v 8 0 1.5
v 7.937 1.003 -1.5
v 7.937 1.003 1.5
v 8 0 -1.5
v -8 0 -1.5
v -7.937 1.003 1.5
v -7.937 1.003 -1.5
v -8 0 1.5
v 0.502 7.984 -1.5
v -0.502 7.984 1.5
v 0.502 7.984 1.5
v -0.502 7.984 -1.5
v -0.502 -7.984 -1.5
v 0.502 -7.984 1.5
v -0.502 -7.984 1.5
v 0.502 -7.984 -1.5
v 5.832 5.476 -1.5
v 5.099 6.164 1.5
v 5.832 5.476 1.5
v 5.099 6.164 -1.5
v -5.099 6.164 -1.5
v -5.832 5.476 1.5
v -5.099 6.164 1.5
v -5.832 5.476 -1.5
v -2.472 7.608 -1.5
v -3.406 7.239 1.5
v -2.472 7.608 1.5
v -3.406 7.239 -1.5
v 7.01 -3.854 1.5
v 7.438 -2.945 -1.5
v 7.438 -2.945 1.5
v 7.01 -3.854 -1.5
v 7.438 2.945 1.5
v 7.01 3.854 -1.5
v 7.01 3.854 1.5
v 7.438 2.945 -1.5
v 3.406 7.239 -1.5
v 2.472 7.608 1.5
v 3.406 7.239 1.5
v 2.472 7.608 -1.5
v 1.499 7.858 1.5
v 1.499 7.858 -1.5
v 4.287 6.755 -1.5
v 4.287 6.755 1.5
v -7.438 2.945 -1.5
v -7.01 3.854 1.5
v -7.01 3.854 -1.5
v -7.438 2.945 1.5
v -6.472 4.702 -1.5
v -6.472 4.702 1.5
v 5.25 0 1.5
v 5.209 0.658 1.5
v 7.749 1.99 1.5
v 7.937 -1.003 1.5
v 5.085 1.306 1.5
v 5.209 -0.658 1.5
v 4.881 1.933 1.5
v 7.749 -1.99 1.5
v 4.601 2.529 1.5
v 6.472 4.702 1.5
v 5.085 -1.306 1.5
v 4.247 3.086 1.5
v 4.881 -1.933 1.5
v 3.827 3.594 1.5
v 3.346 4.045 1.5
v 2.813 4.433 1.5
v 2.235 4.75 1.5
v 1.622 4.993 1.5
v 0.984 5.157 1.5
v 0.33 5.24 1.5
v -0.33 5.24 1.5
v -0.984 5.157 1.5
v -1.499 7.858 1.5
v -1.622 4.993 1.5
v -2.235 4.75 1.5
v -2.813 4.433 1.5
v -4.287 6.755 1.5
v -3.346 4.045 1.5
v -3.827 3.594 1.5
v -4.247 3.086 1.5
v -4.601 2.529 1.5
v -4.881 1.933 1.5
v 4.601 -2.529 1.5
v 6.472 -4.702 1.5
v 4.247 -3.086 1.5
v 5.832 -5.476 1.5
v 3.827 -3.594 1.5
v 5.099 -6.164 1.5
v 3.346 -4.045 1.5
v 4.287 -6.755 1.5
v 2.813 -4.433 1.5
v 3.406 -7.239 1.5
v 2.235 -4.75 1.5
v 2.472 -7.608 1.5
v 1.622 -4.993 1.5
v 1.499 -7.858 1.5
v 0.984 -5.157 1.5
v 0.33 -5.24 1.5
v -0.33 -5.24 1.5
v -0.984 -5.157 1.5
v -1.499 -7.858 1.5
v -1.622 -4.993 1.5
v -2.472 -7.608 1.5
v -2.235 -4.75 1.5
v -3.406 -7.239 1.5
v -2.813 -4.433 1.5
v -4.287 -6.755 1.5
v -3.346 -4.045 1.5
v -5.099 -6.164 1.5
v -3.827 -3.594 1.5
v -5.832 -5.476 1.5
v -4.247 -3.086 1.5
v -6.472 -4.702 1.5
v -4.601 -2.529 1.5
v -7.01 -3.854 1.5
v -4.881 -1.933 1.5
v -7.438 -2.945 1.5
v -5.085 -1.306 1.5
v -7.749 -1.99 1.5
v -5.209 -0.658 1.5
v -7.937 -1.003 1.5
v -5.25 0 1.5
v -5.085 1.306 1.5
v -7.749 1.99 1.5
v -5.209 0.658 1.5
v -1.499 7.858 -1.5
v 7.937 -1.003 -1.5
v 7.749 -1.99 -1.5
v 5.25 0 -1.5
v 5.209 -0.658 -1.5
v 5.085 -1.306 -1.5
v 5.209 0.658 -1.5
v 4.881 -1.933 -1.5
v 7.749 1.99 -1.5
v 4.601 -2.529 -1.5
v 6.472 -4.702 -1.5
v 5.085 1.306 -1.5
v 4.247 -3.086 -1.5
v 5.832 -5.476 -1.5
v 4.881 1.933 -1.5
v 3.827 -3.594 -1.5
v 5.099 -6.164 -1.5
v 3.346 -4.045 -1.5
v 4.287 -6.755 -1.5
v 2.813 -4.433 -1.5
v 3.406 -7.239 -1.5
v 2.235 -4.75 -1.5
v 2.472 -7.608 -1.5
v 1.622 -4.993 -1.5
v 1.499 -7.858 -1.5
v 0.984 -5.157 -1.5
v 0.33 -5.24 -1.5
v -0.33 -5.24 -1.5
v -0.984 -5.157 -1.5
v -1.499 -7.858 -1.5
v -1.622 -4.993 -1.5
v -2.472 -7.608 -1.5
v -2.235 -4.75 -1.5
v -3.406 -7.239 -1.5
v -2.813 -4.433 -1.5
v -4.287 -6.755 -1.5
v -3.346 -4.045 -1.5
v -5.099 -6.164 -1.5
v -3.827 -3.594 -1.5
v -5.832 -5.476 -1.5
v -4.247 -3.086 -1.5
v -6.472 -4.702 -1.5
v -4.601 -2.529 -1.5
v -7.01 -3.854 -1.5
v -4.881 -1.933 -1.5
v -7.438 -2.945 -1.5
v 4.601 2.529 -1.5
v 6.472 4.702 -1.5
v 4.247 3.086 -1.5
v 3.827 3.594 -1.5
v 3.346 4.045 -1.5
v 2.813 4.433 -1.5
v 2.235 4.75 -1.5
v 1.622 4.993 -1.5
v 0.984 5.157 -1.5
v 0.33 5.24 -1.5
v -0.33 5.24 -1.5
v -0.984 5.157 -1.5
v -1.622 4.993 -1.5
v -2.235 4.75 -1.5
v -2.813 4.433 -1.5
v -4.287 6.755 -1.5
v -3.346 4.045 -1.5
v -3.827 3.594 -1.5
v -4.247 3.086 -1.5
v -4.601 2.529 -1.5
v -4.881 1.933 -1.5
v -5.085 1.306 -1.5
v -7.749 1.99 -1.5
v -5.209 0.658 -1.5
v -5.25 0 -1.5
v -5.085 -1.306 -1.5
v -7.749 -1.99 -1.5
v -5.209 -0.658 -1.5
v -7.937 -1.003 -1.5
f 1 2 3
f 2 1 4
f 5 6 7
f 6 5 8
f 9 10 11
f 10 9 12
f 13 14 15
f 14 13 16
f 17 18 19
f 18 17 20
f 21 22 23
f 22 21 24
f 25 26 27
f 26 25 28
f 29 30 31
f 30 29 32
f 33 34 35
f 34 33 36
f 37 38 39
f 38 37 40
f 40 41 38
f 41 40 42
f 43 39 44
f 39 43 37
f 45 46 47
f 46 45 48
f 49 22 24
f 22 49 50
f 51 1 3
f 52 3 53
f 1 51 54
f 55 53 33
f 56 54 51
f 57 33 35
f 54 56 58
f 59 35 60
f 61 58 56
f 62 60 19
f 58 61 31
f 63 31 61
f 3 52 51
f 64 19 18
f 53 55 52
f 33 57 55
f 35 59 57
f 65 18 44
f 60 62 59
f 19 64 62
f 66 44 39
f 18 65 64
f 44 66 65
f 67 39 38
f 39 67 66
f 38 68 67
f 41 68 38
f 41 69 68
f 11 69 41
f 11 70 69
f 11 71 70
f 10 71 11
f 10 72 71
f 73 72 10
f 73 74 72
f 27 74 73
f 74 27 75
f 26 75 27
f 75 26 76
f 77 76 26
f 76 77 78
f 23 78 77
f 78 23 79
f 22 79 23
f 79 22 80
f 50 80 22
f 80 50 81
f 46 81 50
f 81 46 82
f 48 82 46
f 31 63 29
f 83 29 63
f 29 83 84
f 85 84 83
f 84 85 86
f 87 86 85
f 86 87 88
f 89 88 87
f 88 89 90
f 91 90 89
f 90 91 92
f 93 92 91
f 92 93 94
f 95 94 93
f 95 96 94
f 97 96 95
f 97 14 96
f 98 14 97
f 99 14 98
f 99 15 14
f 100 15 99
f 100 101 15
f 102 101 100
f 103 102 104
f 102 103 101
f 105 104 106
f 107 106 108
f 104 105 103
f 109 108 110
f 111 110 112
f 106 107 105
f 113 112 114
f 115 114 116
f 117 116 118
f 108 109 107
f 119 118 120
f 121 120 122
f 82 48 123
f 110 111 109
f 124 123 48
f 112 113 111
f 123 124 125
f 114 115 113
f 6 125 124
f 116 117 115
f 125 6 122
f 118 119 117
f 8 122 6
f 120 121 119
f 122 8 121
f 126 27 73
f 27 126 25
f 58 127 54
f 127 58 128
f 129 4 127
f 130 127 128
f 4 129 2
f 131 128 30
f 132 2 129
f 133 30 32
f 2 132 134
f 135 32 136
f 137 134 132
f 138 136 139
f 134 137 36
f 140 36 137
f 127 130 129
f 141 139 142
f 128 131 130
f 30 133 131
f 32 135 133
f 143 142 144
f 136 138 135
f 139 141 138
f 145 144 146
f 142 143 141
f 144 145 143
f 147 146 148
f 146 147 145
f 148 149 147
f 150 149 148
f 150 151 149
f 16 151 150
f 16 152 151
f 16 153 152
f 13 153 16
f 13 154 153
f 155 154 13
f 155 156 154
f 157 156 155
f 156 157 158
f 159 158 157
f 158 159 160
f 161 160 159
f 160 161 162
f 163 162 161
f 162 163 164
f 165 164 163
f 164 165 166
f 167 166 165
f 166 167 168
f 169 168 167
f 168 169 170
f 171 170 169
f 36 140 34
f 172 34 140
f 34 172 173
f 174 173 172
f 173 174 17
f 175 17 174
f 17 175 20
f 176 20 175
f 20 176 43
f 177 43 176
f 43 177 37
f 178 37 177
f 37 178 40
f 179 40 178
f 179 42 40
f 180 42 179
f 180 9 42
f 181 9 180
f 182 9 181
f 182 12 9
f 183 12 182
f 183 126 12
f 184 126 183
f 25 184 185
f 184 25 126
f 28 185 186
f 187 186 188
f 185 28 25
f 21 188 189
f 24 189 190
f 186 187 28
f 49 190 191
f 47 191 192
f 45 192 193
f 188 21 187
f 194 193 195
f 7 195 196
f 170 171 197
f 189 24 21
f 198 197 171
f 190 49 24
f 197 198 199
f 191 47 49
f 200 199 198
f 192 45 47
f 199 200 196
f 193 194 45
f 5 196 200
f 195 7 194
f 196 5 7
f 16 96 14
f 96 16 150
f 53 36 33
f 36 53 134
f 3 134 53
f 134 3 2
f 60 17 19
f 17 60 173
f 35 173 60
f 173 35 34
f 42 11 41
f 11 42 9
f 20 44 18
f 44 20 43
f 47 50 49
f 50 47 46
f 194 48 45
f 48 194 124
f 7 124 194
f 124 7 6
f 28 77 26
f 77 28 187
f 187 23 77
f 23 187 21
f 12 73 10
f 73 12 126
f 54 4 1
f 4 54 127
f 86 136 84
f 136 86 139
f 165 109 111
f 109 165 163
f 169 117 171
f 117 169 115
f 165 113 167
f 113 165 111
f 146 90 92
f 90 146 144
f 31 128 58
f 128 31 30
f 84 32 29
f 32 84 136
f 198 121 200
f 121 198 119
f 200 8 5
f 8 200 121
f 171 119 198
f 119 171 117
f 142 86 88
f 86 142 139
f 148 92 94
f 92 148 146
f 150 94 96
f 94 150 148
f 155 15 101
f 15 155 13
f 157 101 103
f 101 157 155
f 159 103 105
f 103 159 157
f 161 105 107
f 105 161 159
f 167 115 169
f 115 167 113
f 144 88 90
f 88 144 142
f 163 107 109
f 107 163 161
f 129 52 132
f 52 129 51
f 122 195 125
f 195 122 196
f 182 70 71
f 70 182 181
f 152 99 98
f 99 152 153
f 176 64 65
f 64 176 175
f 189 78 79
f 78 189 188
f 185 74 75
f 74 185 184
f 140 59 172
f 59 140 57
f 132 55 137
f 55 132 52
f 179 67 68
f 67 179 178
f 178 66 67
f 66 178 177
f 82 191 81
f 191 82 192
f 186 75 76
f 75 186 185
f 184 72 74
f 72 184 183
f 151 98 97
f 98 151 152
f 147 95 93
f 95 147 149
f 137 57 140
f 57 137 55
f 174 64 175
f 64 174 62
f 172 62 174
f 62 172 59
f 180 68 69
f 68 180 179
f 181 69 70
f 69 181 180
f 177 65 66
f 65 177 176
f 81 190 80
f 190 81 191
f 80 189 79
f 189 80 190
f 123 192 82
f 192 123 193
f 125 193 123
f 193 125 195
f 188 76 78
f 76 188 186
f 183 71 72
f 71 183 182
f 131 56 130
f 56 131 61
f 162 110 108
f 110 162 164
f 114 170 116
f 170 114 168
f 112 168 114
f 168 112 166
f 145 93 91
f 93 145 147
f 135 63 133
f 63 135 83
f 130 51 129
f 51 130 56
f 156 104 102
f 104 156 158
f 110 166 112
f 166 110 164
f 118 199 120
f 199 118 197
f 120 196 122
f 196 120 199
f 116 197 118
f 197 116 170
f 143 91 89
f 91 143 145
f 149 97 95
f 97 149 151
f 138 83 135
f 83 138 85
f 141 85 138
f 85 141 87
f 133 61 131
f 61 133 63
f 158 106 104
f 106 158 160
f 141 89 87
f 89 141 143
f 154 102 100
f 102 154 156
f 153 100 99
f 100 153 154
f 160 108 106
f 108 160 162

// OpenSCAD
$fn = 50;


difference() {
	union() {
		translate(v = [0, 0, -1.5000000000]) {
			cylinder(h = 3, r = 8.0000000000);
		}
	}
	union() {
		translate(v = [0, 0, -100.0000000000]) {
			cylinder(h = 200, r = 5.2500000000);
		}
	}
}
